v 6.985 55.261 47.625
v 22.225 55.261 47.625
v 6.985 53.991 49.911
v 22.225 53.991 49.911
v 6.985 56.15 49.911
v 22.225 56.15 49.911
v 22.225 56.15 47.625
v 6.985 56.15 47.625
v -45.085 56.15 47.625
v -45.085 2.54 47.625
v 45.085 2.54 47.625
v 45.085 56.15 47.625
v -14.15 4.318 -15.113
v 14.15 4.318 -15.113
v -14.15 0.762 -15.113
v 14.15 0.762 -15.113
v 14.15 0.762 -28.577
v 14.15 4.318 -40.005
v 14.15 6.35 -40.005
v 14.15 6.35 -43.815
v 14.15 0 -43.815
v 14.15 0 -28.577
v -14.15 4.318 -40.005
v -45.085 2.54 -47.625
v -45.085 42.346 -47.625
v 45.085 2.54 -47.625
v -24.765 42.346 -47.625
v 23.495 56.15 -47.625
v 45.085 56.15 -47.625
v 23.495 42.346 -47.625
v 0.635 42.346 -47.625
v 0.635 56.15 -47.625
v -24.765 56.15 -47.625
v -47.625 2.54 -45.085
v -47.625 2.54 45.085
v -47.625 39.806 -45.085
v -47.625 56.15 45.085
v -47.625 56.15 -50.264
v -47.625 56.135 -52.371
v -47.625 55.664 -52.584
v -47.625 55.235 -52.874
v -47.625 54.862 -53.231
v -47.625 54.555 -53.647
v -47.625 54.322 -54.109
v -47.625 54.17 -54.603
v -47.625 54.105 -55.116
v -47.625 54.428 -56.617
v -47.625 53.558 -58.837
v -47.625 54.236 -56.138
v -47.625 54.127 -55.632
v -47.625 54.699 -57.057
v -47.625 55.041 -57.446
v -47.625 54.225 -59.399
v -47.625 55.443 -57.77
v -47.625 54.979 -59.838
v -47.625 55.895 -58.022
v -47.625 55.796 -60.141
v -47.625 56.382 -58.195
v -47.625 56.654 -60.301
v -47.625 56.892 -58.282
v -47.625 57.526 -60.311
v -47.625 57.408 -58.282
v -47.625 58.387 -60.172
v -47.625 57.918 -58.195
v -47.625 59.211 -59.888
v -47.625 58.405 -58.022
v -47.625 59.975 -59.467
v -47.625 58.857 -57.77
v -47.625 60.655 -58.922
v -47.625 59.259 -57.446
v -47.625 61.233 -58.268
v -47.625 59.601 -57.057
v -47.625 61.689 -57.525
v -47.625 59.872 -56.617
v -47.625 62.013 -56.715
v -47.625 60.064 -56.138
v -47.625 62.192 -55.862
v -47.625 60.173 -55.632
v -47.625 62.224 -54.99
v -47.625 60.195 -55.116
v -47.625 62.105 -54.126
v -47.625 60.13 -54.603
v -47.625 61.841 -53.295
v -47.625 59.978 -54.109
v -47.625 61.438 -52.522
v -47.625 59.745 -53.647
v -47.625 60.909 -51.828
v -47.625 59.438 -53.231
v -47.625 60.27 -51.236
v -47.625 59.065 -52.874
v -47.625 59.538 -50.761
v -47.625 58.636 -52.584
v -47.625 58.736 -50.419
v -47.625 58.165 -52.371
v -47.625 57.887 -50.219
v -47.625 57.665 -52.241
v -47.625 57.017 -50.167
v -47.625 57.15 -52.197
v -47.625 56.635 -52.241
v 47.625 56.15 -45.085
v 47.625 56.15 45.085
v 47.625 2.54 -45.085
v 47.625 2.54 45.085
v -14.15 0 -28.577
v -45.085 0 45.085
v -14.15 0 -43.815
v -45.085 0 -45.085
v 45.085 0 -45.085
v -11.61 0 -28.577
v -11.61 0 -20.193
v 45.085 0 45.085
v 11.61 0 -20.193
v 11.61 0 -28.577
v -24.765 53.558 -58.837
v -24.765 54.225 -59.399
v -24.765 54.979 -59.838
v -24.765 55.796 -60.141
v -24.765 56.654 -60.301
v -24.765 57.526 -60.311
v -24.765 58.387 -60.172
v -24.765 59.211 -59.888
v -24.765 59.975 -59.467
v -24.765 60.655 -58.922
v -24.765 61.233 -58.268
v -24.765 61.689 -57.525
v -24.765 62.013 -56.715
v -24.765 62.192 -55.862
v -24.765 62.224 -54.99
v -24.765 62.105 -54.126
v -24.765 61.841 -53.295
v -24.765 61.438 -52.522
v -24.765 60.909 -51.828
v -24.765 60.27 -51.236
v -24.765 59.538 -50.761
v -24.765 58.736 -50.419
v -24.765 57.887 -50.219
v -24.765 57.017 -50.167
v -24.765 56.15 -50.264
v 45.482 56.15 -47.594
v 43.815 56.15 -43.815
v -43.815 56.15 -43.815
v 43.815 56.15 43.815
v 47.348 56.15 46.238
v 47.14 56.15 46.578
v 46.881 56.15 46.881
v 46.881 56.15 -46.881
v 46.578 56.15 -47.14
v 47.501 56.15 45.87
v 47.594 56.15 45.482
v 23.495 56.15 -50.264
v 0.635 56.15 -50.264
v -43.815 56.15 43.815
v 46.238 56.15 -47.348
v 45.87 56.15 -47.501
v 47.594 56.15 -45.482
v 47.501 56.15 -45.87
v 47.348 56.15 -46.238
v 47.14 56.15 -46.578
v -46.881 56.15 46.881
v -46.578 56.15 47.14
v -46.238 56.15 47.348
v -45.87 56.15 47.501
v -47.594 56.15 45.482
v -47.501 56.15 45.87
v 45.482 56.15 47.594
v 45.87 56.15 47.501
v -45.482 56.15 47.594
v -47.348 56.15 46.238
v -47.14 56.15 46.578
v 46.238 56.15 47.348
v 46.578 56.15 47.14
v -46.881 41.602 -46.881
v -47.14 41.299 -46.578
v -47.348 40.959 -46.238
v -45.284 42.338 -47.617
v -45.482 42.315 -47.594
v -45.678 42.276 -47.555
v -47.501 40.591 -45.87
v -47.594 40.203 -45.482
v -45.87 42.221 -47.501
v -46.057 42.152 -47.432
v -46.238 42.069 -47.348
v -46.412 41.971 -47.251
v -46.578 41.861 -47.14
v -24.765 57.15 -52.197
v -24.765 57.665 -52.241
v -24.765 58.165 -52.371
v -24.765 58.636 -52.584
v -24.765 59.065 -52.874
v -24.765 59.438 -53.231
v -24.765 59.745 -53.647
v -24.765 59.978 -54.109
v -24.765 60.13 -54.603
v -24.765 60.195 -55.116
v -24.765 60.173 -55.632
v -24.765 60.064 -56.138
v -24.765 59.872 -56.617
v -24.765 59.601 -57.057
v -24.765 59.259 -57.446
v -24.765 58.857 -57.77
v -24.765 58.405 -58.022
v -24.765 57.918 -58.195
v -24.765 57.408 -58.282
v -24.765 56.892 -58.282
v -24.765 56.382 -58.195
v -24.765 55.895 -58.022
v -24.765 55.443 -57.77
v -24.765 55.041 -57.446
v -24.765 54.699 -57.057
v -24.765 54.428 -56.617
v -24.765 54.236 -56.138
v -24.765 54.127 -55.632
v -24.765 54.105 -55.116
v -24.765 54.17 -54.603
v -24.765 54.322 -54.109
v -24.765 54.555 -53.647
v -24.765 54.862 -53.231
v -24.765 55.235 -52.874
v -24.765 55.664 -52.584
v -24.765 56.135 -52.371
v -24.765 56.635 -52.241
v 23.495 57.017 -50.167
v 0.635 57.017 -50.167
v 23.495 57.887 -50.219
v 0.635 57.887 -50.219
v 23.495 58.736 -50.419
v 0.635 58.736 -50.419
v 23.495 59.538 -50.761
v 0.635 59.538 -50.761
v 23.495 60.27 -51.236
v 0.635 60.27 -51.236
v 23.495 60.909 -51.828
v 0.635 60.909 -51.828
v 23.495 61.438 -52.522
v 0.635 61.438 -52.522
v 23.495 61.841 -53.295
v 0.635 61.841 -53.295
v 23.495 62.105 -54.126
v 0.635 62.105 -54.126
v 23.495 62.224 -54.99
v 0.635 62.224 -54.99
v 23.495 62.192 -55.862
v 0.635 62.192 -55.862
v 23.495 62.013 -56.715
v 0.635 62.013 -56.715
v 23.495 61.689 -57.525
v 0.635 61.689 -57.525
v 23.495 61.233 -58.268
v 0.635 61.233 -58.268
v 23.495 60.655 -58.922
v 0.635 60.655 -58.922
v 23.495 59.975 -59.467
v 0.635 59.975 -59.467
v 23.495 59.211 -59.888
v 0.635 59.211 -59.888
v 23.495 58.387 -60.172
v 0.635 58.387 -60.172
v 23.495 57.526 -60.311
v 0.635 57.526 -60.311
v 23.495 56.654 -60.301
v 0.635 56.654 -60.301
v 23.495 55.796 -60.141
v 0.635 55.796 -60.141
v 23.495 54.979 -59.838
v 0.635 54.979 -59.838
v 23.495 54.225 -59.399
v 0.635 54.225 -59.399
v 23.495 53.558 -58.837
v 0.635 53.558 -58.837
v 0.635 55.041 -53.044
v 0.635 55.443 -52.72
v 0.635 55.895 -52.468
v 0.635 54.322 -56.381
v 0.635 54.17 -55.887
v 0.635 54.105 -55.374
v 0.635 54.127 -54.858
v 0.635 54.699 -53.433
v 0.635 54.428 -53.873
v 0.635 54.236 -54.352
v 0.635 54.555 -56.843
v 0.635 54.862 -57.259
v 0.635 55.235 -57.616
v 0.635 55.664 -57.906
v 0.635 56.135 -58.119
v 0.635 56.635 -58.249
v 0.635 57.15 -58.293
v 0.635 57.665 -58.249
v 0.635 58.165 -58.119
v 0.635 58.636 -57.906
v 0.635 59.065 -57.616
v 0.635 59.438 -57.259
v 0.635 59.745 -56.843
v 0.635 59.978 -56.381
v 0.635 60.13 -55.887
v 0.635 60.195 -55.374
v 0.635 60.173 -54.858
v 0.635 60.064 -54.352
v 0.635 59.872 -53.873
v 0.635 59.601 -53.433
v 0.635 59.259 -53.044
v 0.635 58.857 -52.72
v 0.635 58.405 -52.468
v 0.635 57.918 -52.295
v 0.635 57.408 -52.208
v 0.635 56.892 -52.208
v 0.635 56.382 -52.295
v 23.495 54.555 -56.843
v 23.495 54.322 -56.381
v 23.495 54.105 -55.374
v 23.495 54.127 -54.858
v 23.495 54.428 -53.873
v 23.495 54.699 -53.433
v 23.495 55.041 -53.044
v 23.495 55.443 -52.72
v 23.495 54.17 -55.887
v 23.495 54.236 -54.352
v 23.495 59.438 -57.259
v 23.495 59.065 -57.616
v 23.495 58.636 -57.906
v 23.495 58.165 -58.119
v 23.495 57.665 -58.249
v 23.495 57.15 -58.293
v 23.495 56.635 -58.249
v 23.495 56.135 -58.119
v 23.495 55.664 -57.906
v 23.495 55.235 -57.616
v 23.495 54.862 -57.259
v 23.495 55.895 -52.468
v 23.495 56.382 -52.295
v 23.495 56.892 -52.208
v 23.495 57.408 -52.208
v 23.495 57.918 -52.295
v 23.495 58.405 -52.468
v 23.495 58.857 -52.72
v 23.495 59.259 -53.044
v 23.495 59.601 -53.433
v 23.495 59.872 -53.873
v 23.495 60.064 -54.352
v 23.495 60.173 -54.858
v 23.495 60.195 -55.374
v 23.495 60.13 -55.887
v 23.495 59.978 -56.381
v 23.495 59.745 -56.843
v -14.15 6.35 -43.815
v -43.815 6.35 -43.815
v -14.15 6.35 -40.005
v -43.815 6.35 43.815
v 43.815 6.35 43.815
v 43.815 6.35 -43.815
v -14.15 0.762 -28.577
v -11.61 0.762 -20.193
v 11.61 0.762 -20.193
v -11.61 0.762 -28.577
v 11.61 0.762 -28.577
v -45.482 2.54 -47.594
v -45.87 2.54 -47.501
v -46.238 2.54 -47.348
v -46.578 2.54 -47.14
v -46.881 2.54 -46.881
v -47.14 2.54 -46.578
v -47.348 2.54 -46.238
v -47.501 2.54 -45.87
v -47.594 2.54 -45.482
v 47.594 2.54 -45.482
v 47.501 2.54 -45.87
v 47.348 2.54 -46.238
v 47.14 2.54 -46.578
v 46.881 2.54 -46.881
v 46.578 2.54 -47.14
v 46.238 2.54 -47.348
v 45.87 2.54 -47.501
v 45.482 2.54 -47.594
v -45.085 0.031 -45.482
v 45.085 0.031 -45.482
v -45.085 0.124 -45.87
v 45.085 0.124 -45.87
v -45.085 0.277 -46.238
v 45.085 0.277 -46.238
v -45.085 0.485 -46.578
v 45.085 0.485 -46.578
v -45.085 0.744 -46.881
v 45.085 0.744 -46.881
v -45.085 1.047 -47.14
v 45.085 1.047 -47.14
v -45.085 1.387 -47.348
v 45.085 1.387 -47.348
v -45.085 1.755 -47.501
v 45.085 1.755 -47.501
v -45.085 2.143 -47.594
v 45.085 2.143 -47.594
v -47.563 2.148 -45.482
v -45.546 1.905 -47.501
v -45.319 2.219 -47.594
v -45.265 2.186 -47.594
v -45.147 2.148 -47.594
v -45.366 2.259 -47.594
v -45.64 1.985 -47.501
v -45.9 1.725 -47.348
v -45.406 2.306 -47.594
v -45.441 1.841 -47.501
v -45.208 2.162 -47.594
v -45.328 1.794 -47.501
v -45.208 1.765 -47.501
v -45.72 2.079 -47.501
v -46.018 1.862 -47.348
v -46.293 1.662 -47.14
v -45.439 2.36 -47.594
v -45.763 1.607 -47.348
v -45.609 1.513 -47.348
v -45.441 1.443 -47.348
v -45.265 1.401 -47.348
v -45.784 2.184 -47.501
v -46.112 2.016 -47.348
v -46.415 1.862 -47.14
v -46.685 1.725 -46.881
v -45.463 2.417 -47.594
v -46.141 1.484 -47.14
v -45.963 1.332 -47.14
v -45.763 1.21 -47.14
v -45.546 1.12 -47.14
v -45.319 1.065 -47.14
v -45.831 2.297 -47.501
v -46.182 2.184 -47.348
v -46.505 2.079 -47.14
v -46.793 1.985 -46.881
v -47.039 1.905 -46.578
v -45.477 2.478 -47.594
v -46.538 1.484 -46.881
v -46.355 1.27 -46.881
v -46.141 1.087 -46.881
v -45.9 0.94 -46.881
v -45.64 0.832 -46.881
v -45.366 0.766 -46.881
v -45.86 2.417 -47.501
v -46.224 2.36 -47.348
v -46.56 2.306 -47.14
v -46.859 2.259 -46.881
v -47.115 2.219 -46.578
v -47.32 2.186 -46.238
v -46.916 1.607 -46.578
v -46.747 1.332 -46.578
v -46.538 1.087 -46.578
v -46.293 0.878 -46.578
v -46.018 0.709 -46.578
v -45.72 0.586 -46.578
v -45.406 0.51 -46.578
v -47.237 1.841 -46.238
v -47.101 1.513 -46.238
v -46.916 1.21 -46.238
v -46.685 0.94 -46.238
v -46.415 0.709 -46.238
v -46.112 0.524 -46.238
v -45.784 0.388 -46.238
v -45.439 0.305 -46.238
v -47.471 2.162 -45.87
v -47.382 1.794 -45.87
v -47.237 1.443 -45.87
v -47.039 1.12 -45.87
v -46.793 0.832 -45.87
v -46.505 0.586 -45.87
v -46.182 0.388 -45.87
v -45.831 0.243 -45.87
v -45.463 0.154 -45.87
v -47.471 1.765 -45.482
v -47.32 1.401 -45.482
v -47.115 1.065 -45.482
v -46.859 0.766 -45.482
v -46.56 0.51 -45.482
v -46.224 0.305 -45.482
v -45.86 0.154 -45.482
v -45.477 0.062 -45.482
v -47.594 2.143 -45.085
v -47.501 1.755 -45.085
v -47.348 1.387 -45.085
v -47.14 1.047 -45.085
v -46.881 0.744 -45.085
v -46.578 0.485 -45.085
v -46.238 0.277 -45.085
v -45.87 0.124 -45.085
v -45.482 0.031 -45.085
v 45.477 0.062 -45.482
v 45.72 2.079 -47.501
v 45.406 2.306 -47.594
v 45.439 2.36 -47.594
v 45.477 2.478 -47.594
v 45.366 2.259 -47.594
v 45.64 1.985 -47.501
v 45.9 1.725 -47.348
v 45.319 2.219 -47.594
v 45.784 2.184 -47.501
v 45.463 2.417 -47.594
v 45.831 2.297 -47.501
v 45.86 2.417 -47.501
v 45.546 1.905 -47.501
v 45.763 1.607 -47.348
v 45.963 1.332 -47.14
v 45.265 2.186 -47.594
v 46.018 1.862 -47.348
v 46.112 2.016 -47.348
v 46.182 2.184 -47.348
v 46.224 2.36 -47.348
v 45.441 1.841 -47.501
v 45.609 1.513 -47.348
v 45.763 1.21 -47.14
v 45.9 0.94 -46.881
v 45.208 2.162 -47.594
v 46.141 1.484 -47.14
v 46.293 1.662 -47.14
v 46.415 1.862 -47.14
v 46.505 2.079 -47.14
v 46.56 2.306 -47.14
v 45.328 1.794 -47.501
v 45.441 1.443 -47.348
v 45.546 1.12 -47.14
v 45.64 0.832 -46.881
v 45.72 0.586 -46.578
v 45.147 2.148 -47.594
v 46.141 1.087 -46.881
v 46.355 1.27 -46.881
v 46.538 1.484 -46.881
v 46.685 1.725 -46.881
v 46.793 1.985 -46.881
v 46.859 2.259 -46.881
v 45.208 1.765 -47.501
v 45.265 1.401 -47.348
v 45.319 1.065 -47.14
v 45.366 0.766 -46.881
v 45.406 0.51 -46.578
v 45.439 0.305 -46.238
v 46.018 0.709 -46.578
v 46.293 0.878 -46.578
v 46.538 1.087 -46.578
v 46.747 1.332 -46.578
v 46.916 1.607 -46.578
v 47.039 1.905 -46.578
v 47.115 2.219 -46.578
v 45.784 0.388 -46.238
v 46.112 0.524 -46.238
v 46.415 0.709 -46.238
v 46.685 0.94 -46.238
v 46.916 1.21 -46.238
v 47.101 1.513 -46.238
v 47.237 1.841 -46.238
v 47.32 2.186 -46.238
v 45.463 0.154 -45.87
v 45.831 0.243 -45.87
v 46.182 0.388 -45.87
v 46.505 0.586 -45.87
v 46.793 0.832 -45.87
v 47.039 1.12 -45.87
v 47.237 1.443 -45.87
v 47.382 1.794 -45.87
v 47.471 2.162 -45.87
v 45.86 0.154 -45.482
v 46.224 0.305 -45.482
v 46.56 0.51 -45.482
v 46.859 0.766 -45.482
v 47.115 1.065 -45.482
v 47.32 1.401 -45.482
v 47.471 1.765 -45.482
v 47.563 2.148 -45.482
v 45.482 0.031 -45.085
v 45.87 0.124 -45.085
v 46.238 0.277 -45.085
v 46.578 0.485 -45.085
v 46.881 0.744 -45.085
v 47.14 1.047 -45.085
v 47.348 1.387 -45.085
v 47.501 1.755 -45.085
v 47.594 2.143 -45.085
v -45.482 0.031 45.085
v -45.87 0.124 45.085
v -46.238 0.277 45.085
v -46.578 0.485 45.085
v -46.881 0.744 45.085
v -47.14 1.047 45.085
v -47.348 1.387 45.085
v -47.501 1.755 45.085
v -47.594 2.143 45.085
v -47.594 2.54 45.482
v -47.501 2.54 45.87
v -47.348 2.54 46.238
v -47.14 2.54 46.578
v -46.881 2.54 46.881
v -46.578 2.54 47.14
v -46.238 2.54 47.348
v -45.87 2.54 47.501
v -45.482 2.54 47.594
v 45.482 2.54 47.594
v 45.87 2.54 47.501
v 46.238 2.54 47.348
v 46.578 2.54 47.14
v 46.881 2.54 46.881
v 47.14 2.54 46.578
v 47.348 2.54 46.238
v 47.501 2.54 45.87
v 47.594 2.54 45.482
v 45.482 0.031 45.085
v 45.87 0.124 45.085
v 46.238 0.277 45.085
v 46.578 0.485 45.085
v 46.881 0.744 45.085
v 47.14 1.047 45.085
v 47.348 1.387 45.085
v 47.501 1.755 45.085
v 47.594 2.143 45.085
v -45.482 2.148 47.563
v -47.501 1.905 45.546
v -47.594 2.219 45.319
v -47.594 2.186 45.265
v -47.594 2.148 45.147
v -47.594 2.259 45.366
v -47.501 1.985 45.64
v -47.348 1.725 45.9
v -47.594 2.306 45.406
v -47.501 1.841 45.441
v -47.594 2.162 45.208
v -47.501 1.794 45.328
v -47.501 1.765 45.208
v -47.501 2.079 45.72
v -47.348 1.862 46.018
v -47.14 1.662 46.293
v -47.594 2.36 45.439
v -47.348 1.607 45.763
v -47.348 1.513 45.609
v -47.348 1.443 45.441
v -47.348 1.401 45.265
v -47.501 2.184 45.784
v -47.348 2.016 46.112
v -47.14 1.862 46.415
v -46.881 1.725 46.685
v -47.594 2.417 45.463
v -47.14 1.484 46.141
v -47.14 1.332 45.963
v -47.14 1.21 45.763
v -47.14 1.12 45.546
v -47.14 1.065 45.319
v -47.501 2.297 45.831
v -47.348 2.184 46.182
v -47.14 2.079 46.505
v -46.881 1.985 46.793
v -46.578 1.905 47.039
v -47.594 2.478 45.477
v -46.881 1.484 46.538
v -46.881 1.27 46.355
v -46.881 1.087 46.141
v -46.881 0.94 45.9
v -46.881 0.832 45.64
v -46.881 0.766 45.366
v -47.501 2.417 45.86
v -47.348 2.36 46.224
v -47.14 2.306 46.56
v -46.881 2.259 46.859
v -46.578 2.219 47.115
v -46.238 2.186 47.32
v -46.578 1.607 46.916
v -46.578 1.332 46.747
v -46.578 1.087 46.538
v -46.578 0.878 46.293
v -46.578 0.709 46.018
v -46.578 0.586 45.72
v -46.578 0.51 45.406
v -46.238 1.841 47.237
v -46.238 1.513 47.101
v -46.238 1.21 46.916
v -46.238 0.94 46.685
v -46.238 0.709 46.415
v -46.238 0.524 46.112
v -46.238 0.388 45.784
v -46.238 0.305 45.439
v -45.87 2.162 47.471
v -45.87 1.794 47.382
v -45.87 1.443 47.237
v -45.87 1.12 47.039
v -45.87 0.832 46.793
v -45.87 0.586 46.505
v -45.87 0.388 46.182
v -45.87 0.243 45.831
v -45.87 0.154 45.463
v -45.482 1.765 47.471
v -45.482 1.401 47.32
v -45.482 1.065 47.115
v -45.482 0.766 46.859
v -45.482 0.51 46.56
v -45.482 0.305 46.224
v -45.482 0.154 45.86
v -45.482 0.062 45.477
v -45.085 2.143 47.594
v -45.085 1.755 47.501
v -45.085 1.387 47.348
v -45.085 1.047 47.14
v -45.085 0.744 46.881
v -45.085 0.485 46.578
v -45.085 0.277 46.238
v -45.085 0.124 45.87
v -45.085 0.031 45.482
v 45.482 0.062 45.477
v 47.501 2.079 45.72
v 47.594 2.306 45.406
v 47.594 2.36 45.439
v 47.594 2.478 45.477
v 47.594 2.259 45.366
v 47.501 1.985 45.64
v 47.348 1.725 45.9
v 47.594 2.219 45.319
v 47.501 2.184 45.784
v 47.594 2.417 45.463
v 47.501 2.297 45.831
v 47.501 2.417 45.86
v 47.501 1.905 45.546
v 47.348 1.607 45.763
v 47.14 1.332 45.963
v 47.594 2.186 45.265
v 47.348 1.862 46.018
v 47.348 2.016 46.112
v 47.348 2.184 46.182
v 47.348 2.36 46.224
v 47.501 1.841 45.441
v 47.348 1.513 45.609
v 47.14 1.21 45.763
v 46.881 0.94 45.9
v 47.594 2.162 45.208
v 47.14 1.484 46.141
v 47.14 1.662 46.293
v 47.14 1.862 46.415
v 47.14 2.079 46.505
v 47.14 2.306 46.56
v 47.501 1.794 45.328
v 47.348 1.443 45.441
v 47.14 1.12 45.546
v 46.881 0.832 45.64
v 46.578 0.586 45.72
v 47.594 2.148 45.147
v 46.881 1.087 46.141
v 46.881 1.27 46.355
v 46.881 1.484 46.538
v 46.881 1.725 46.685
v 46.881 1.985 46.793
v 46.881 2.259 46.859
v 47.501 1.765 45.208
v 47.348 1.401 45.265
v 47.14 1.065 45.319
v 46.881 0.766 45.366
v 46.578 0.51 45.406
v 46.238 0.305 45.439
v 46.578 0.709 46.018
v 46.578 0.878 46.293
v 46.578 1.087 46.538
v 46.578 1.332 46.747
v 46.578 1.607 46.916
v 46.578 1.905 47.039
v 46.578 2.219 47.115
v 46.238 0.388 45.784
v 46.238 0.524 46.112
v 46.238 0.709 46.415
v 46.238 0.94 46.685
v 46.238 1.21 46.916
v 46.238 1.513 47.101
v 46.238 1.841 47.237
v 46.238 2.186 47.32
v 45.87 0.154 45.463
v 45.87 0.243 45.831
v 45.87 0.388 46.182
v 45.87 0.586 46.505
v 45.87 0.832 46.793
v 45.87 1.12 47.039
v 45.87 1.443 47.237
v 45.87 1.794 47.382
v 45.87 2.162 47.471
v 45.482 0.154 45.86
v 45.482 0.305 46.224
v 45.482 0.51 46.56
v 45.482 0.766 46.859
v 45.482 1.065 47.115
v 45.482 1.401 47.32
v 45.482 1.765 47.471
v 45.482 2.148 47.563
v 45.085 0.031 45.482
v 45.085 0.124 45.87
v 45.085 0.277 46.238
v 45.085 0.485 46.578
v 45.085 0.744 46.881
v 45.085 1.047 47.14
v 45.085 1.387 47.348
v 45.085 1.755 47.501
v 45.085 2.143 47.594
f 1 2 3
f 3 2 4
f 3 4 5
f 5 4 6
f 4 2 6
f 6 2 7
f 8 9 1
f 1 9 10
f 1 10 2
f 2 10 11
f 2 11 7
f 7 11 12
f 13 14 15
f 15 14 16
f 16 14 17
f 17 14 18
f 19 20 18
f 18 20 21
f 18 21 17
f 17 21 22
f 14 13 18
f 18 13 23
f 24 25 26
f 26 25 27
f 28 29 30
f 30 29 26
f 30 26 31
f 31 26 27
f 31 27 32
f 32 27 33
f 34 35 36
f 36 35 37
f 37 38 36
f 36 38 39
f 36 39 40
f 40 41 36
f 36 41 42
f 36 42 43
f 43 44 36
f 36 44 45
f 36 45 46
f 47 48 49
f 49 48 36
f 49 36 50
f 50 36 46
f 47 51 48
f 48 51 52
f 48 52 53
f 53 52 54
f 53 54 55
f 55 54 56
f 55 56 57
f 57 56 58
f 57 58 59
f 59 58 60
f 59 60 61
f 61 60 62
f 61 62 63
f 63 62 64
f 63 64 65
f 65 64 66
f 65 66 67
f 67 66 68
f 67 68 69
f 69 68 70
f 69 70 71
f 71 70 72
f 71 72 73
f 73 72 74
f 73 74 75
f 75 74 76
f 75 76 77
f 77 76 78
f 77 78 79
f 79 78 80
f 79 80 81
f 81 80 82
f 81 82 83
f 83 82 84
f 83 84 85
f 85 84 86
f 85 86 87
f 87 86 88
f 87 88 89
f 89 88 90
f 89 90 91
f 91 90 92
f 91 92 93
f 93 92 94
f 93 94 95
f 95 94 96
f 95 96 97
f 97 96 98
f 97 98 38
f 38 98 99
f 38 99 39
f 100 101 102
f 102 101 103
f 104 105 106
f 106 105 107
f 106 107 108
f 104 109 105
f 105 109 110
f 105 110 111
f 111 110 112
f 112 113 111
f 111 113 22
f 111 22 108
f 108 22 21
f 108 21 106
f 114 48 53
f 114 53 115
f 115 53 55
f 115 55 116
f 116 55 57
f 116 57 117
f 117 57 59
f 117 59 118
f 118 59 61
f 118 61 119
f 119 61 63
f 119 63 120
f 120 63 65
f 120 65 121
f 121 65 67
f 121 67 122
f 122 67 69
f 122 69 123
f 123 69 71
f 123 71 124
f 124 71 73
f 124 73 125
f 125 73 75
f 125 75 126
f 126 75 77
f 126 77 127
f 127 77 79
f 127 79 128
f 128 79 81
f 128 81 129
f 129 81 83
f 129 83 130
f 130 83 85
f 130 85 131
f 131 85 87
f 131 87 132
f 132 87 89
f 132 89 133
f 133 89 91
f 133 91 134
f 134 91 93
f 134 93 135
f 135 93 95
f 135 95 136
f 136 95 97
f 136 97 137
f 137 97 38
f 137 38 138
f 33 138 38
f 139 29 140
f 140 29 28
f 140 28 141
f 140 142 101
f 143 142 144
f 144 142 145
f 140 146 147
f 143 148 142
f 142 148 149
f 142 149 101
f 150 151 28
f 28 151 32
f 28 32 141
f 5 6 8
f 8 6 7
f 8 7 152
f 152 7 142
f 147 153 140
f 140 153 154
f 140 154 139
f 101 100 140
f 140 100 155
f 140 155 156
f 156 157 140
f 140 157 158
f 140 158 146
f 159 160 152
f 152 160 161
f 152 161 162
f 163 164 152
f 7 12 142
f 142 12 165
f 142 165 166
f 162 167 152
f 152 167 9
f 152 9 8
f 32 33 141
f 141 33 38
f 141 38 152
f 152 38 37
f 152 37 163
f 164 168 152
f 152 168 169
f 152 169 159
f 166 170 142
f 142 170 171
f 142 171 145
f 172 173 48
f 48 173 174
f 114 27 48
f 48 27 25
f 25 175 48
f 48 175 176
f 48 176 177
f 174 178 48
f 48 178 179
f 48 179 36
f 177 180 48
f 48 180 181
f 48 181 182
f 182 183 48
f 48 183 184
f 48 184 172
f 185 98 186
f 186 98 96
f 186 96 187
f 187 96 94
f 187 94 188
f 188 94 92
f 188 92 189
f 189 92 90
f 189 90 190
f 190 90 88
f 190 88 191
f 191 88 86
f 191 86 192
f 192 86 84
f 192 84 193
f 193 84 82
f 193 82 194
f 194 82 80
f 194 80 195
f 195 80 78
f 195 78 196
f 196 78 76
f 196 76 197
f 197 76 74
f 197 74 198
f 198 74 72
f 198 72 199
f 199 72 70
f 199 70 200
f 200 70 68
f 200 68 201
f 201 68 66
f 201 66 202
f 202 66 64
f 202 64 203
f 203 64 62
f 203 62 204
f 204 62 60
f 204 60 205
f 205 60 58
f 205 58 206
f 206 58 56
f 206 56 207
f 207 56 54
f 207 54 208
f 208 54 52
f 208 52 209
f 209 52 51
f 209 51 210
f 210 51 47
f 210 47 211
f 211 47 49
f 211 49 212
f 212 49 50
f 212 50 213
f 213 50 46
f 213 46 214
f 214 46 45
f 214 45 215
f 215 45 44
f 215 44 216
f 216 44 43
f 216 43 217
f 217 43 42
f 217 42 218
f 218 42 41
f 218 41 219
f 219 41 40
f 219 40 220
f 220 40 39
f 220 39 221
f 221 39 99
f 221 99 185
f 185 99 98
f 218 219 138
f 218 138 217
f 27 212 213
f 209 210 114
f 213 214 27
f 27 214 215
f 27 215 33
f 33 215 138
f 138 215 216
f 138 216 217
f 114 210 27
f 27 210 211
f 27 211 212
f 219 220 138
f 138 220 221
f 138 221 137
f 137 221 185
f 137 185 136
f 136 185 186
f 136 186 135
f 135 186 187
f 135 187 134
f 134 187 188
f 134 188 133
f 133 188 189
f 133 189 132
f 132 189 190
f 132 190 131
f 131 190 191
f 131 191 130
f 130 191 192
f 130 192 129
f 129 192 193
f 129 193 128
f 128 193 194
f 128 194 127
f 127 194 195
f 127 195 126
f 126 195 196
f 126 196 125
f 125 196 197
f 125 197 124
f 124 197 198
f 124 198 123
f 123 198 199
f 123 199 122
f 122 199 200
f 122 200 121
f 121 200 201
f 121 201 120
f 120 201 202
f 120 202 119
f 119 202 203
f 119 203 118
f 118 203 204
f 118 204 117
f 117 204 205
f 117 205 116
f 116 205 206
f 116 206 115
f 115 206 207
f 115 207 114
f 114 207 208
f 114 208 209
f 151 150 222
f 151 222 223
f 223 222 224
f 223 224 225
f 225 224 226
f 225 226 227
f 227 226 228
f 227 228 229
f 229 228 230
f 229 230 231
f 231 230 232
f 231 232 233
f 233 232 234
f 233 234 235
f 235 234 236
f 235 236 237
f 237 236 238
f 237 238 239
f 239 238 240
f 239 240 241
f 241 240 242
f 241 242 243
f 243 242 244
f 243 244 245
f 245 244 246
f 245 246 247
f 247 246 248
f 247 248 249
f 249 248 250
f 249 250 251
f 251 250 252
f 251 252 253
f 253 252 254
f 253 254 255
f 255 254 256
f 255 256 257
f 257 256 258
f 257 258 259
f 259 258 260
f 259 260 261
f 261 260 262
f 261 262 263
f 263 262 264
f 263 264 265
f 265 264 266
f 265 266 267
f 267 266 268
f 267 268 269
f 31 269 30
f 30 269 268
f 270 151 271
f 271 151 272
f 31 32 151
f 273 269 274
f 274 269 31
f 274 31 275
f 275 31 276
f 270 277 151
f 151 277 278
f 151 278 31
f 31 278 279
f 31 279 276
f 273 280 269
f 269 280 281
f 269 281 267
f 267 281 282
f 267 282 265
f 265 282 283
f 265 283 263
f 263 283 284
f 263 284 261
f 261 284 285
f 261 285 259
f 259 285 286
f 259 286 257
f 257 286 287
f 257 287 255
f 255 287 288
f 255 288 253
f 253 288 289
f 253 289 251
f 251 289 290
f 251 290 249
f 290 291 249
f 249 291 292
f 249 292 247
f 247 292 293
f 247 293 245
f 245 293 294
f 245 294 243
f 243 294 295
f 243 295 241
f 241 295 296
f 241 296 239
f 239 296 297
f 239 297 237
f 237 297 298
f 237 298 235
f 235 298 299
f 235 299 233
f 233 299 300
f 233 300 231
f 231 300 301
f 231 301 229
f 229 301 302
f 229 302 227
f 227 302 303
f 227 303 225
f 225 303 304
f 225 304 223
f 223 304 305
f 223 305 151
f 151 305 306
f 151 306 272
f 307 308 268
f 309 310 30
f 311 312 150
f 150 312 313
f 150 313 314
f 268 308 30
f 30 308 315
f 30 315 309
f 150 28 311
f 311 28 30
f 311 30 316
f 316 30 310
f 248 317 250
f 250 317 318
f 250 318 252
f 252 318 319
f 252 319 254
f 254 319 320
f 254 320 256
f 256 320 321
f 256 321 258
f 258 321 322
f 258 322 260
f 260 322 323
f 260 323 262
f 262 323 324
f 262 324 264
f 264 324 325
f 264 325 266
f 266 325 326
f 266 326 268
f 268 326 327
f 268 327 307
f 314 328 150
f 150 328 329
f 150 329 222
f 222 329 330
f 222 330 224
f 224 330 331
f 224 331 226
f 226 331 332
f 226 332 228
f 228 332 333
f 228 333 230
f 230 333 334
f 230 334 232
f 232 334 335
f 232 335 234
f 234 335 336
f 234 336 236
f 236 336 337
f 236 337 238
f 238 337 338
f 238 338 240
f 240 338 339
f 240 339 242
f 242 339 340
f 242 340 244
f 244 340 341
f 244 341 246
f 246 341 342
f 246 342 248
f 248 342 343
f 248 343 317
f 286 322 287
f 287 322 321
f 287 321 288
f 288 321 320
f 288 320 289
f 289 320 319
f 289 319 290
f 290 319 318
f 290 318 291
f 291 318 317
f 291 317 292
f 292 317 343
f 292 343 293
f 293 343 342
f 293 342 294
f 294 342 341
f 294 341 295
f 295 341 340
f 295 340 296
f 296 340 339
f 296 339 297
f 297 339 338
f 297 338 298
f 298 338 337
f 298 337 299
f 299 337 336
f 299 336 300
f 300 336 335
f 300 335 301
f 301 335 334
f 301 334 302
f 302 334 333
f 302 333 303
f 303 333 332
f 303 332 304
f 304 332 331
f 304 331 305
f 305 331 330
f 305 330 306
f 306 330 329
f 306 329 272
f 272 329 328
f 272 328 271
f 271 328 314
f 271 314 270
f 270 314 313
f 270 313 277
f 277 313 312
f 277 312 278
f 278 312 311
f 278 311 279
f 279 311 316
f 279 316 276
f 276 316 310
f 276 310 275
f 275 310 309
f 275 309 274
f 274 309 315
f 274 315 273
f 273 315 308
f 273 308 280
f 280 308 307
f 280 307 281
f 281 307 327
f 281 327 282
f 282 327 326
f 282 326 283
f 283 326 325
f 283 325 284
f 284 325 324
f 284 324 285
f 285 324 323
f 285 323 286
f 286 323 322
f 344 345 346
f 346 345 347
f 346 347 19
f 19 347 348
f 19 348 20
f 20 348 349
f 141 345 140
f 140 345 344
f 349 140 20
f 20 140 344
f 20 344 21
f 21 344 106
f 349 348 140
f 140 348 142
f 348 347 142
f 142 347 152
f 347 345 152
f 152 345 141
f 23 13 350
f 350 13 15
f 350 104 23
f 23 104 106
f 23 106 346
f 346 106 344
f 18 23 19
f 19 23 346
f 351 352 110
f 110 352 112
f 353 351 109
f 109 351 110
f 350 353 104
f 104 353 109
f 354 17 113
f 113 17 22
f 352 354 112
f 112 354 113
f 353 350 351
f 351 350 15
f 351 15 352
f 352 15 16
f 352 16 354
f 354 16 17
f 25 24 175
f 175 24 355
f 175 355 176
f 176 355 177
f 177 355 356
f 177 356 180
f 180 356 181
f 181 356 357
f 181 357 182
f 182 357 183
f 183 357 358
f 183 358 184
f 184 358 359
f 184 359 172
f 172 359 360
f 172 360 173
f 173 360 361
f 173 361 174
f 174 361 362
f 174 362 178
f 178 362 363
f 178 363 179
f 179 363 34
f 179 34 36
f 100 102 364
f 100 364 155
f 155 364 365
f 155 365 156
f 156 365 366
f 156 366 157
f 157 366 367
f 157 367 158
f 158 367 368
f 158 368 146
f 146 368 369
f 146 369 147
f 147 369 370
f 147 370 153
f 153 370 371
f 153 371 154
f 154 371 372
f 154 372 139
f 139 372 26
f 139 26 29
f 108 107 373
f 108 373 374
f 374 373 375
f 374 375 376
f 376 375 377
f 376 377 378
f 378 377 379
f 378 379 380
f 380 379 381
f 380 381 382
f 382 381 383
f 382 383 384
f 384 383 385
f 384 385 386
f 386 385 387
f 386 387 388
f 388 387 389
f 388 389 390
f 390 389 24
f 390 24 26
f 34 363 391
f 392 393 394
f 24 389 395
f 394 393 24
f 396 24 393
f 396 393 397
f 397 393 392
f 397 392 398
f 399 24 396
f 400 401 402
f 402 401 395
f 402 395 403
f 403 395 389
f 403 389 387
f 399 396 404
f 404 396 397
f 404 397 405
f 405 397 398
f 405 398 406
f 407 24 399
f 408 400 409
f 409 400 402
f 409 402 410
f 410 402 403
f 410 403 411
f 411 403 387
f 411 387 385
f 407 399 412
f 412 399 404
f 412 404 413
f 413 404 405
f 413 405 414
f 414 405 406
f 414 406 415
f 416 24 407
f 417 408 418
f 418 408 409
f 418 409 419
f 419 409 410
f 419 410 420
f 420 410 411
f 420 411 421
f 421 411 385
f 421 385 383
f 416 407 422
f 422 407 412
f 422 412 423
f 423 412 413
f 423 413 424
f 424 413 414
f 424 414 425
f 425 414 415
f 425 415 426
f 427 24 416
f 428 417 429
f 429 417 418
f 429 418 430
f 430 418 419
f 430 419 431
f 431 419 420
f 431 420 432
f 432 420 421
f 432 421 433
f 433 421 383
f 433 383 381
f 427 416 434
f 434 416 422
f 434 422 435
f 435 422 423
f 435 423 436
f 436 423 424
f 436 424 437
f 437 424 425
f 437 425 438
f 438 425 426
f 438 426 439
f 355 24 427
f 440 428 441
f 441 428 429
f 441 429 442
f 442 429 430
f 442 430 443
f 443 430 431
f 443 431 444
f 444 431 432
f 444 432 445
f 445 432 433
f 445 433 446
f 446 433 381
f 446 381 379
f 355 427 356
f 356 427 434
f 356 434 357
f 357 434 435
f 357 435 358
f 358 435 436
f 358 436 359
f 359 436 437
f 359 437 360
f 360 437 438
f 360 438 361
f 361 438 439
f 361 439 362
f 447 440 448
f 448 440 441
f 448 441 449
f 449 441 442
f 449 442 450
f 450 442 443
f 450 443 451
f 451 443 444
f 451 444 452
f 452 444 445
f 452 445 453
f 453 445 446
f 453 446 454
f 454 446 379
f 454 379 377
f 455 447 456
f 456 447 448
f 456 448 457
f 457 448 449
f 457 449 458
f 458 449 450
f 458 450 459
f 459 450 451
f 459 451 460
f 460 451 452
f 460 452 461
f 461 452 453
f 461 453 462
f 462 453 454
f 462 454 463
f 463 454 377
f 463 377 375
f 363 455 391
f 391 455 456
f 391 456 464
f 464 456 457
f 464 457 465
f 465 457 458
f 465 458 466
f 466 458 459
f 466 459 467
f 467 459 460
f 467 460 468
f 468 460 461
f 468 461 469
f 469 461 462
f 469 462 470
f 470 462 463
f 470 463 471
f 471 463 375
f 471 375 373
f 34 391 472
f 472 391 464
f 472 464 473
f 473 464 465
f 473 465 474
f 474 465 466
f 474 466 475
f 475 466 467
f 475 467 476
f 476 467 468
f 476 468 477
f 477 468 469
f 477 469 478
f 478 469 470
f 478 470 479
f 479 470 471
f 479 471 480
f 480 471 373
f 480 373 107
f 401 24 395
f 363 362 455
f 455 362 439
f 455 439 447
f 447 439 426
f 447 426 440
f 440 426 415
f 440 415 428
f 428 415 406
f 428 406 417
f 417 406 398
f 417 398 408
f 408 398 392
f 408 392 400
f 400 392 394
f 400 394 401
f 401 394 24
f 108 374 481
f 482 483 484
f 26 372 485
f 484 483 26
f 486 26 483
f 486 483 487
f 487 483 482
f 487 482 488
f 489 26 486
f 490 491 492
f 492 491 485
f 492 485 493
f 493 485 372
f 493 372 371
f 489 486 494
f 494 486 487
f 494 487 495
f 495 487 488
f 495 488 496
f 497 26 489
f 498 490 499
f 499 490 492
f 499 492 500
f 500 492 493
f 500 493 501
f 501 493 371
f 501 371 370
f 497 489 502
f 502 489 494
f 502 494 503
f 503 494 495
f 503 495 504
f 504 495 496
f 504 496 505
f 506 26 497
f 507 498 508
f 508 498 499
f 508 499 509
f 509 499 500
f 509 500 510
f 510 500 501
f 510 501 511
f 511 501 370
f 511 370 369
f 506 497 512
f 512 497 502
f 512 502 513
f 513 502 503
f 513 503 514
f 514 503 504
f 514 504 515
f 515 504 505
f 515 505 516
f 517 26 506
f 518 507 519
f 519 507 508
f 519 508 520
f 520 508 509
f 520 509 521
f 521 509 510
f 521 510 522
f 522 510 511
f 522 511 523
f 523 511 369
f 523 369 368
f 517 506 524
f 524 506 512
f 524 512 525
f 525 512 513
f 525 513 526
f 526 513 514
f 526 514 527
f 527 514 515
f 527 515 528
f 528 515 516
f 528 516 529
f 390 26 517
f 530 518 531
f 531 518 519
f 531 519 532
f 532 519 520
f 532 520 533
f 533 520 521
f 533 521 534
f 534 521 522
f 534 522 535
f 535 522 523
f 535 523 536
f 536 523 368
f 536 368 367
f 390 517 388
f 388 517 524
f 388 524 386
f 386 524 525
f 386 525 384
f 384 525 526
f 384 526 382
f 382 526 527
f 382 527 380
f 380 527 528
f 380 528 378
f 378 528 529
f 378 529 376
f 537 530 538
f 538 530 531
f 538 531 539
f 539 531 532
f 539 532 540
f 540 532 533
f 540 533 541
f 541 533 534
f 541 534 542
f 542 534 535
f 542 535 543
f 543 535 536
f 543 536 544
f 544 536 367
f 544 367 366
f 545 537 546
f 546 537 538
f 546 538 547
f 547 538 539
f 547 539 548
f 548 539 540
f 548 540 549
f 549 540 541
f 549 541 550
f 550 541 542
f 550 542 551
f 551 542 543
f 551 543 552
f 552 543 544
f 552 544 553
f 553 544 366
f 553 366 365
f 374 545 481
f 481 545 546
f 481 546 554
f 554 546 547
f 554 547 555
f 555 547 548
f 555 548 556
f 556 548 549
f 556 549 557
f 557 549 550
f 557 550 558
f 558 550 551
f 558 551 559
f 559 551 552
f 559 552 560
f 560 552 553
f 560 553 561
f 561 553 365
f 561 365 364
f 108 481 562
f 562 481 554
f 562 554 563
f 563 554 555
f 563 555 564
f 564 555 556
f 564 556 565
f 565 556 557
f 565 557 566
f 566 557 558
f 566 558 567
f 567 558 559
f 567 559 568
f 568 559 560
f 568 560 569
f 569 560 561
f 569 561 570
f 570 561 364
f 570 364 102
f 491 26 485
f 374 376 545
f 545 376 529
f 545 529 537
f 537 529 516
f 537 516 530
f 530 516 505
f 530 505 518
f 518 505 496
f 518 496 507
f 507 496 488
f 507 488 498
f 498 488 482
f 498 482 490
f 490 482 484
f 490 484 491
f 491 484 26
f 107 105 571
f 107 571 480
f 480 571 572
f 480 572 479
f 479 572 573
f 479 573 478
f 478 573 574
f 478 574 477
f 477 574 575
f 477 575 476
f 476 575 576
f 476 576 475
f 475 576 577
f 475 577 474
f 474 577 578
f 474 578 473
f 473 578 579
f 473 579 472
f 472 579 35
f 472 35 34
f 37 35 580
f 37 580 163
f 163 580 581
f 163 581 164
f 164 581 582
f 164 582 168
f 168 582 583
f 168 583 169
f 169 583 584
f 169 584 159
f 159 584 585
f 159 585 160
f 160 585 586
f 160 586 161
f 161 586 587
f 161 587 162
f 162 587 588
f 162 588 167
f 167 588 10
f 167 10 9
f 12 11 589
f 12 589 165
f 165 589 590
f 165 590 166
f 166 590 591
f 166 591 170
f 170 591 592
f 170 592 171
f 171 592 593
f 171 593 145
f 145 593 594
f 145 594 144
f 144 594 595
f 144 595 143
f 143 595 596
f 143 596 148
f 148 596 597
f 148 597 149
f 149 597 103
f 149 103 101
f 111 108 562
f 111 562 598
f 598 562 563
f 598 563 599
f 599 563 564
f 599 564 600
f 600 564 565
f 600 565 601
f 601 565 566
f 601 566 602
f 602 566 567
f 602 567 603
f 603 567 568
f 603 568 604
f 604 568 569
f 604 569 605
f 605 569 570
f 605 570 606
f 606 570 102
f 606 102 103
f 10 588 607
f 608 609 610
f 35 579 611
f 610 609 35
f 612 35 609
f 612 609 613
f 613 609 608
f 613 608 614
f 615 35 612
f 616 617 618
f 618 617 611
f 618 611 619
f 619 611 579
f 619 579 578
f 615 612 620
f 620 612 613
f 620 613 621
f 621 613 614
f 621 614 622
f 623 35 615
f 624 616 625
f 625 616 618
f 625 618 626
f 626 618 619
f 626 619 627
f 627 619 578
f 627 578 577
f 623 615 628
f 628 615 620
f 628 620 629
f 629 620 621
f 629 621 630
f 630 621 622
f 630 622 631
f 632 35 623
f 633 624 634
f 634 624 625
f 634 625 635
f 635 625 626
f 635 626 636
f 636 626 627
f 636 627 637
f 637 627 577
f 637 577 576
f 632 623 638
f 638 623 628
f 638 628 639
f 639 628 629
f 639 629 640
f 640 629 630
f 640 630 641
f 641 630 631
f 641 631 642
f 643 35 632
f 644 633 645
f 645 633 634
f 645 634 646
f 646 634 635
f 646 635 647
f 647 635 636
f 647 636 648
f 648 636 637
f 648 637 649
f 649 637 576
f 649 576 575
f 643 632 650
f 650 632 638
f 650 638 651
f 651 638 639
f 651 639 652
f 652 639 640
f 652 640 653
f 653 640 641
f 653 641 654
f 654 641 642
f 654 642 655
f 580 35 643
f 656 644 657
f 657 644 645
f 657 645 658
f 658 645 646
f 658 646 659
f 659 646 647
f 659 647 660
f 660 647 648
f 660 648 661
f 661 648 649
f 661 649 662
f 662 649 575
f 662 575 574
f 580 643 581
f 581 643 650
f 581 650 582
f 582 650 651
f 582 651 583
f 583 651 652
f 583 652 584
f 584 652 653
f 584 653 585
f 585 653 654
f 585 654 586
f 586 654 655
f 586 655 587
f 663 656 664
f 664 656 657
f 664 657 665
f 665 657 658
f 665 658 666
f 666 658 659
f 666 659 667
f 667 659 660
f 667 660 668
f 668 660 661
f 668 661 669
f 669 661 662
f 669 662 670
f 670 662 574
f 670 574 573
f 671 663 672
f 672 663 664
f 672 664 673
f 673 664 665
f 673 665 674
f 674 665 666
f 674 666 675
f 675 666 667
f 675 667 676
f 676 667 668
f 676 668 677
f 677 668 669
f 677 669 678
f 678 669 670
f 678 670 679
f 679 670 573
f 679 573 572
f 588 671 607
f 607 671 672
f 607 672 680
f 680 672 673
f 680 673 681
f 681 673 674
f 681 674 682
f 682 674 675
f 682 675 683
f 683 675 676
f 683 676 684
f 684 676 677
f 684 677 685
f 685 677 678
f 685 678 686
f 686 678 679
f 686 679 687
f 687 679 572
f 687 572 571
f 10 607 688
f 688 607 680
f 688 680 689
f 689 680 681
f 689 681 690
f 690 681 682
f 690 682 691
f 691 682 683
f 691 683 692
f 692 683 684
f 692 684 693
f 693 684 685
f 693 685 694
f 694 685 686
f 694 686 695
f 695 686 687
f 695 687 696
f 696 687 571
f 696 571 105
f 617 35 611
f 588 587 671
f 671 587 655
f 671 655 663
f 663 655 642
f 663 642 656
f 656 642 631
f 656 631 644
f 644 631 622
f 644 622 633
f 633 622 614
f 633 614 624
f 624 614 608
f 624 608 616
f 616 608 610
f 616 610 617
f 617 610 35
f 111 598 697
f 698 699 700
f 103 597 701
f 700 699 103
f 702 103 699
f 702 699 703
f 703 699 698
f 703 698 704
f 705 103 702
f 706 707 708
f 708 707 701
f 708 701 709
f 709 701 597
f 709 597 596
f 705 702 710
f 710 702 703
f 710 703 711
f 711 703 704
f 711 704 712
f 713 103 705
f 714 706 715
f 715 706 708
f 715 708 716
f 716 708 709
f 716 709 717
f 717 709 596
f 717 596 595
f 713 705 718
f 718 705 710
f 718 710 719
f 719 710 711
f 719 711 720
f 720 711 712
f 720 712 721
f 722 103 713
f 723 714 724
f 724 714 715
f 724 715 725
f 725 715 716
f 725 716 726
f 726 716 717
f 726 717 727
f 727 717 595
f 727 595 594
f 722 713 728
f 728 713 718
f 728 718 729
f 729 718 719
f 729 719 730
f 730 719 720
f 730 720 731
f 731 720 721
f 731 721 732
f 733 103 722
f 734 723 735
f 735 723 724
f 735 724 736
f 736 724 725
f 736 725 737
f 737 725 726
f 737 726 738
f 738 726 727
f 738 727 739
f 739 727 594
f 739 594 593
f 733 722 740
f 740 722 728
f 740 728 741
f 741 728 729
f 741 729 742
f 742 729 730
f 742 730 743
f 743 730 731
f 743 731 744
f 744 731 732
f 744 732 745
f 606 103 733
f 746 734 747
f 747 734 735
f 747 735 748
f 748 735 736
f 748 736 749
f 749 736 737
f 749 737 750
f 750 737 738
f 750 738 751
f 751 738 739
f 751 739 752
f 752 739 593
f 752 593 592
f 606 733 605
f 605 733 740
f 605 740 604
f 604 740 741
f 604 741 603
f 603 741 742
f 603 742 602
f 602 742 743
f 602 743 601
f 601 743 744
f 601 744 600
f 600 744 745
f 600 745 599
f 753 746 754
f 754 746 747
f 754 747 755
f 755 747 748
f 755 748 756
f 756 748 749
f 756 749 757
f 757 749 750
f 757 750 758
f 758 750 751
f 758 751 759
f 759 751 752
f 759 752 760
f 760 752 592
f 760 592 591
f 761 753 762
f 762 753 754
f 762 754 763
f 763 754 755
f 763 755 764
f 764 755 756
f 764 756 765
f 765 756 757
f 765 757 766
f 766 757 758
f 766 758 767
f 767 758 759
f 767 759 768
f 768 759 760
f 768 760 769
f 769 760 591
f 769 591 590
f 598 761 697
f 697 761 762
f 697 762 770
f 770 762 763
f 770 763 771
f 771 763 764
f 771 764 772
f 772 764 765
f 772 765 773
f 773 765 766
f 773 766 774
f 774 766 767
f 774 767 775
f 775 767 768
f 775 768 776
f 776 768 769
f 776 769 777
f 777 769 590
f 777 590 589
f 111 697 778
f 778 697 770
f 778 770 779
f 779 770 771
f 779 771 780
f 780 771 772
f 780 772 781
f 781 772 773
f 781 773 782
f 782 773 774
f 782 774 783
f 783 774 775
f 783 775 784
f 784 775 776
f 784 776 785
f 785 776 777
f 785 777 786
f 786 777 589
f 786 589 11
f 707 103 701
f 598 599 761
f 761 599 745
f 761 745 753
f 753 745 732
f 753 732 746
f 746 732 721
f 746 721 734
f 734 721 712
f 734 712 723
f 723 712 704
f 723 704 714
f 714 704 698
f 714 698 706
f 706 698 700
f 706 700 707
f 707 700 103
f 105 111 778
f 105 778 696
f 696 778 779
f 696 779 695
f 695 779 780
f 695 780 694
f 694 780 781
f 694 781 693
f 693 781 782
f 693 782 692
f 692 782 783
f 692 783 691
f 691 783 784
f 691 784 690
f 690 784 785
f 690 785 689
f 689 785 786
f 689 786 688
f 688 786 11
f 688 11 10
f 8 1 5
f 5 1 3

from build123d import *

# Parameters (mm, degrees)
SKETCH1_W                 = 95.25
SKETCH1_H                 = 95.25
BOSS_EXTRUDE1_DEPTH       = 57.15
SHELL1_T                  = -3.81
SHELL1_THICKNESS_2_FACE_W = 87.63
SHELL1_THICKNESS_2_FACE_H = 87.63
SHELL1_THICKNESS_2_DEPTH  = 2.54
SKETCH2_R                 = 3.048
BOSS_EXTRUDE2_DEPTH       = 22.86
BOSS_EXTRUDE3_START       = -46.99
SKETCH5_R                 = 3.048
BOSS_EXTRUDE3_DEPTH       = 22.86
SKETCH2_3_W               = 95.25
SKETCH2_3_H               = 1.000000032
CUT_EXTRUDE1_DEPTH        = 129.779816062
SKETCH6_W                 = 28.300000042
SKETCH6_H                 = 28.702
CUT_EXTRUDE2_DEPTH        = 4.318
SKETCH7_W                 = 28.300000042
SKETCH7_H                 = 3.81
CUT_EXTRUDE3_DEPTH        = 3.81
BOSS_EXTRUDE4_DEPTH       = 0.762
FILLET1_R                 = 2.54
BOSS_EXTRUDE7_START       = -47.625
BOSS_EXTRUDE7_DEPTH       = 22.225
SKETCH17_OUTSIDE_W        = 128.934
SKETCH17_OUTSIDE_H        = 95.914
SKETCH17_OUTSIDE_W_2      = 15.24
SKETCH17_OUTSIDE_H_2      = 2.159
CUT_EXTRUDE18_DEPTH       = 2.286


with BuildPart() as part:
    # Sketch1 → Boss-Extrude1 (new body)
    with BuildSketch(Plane(origin=(0, 0, 0), x_dir=(1, 0, 0), z_dir=(0, 1, 0))):
        Rectangle(SKETCH1_W, SKETCH1_H)
    extrude(amount=BOSS_EXTRUDE1_DEPTH)

    # Shell1
    shell1_openings = [part.faces().sort_by_distance(p)[0] for p in [
        (0, 57.15, 0),
    ]]
    offset(amount=SHELL1_T, openings=shell1_openings, kind=Kind.INTERSECTION)

    # Shell1 thickness 2 face (on inner face of the shell) → Shell1 thickness 2 (add)
    with BuildSketch(Plane(origin=(0, 3.81, 0), x_dir=(0, 0, -1), z_dir=(0, -1, 0))):
        Rectangle(SHELL1_THICKNESS_2_FACE_W, SHELL1_THICKNESS_2_FACE_H)
    extrude(amount=-SHELL1_THICKNESS_2_DEPTH)

    # Sketch2 → Boss-Extrude2 (add)
    with BuildSketch(Plane.ZY.offset(47.625)):
        with BuildLine():
            ThreePointArc((-50.165, 57.15), (-57.189031836, 61.843308025), (-58.837102448, 53.557897552))
            Line((-58.837102448, 53.557897552), (-47.625, 42.345795103))
            Line((-47.625, 42.345795103), (-47.625, 56.149999968))
            Line((-47.625, 56.149999968), (-50.264397633, 56.149999968))
            ThreePointArc((-50.264397633, 56.149999968), (-50.189910484, 56.647536083), (-50.165, 57.15))
        make_face()
        with Locations((-55.245, 57.15)):
            Circle(SKETCH2_R, mode=Mode.SUBTRACT)
    extrude(amount=-BOSS_EXTRUDE2_DEPTH)

    # Sketch5 → Boss-Extrude3 (add)
    with BuildSketch(Plane(origin=(47.625, 0, 0), x_dir=(0, 0, -1), z_dir=(1, 0, 0)).offset(BOSS_EXTRUDE3_START)):
        with BuildLine():
            Line((47.625, 56.149999968), (47.625, 42.345795103))
            Line((47.625, 42.345795103), (58.837102448, 53.557897552))
            ThreePointArc((58.837102448, 53.557897552), (56.715282878, 62.012578355), (50.264397633, 56.149999968))
            Line((50.264397633, 56.149999968), (47.625, 56.149999968))
        make_face()
        with Locations((55.245, 57.15)):
            Circle(SKETCH5_R, mode=Mode.SUBTRACT)
    extrude(amount=BOSS_EXTRUDE3_DEPTH)

    # Sketch2_3 → Cut-Extrude1 (cut, through all)
    with BuildSketch(Plane.ZY.offset(47.625)):
        with Locations((0, 56.649999984)):
            Rectangle(SKETCH2_3_W, SKETCH2_3_H)
    extrude(amount=-CUT_EXTRUDE1_DEPTH, mode=Mode.SUBTRACT)

    # Sketch6 → Cut-Extrude2 (cut)
    with BuildSketch(Plane.XZ):
        with Locations((0, -29.464)):
            Rectangle(SKETCH6_W, SKETCH6_H)
    extrude(amount=-CUT_EXTRUDE2_DEPTH, mode=Mode.SUBTRACT)

    # Sketch7 → Cut-Extrude3 (cut)
    with BuildSketch(Plane(origin=(0, 4.318, 0), x_dir=(-1, 0, 0), z_dir=(0, -1, 0))):
        with Locations((0, 41.91)):
            Rectangle(SKETCH7_W, SKETCH7_H)
    extrude(amount=-CUT_EXTRUDE3_DEPTH, mode=Mode.SUBTRACT)

    # Sketch8 → Boss-Extrude4 (add)
    with BuildSketch(Plane.XZ):
        Polygon((-11.610000021, -15.113), (-14.150000021, -15.113), (-14.150000021, -20.595), (-14.150000021, -28.57736709), (-11.610000021, -28.57736709), (-11.610000021, -20.193), (11.610000021, -20.193), (11.610000021, -28.57736709), (14.150000021, -28.57736709), (14.150000021, -20.595), (14.150000021, -15.113), (11.610000021, -15.113), align=None)
    extrude(amount=-BOSS_EXTRUDE4_DEPTH)

    # Fillet1
    fillet1_edges = [part.edges().sort_by_distance(p)[0] for p in [
        (-47.625, 0, 0),
        (47.625, 0, 0),
        (0, 0, -47.625),
        (47.625, 28.074999984, -47.625),
        (-47.625, 21.172897552, -47.625),
        (47.625, 28.074999984, 47.625),
        (-47.625, 28.074999984, 47.625),
        (0, 0, 47.625),
    ]]
    fillet(fillet1_edges, radius=FILLET1_R)

    # Sketch13 → Boss-Extrude7 (add, symmetric)
    with BuildSketch(Plane.ZY.offset(47.625).offset(BOSS_EXTRUDE7_START)):
        Polygon((47.625, 55.260999968), (47.625, 59.070999968), (49.911, 60.340999968), (49.911, 53.990999968), align=None)
    extrude(amount=BOSS_EXTRUDE7_DEPTH, both=True)

    # Sketch17 outside → Cut-Extrude18 (cut)
    with BuildSketch(Plane.XY.offset(49.911)):
        with Locations((0, 31.115)):
            Rectangle(SKETCH17_OUTSIDE_W, SKETCH17_OUTSIDE_H)
        with Locations((14.605, 55.070499968)):
            Rectangle(SKETCH17_OUTSIDE_W_2, SKETCH17_OUTSIDE_H_2, mode=Mode.SUBTRACT)
    extrude(amount=-CUT_EXTRUDE18_DEPTH, mode=Mode.SUBTRACT)


solid = part.part
